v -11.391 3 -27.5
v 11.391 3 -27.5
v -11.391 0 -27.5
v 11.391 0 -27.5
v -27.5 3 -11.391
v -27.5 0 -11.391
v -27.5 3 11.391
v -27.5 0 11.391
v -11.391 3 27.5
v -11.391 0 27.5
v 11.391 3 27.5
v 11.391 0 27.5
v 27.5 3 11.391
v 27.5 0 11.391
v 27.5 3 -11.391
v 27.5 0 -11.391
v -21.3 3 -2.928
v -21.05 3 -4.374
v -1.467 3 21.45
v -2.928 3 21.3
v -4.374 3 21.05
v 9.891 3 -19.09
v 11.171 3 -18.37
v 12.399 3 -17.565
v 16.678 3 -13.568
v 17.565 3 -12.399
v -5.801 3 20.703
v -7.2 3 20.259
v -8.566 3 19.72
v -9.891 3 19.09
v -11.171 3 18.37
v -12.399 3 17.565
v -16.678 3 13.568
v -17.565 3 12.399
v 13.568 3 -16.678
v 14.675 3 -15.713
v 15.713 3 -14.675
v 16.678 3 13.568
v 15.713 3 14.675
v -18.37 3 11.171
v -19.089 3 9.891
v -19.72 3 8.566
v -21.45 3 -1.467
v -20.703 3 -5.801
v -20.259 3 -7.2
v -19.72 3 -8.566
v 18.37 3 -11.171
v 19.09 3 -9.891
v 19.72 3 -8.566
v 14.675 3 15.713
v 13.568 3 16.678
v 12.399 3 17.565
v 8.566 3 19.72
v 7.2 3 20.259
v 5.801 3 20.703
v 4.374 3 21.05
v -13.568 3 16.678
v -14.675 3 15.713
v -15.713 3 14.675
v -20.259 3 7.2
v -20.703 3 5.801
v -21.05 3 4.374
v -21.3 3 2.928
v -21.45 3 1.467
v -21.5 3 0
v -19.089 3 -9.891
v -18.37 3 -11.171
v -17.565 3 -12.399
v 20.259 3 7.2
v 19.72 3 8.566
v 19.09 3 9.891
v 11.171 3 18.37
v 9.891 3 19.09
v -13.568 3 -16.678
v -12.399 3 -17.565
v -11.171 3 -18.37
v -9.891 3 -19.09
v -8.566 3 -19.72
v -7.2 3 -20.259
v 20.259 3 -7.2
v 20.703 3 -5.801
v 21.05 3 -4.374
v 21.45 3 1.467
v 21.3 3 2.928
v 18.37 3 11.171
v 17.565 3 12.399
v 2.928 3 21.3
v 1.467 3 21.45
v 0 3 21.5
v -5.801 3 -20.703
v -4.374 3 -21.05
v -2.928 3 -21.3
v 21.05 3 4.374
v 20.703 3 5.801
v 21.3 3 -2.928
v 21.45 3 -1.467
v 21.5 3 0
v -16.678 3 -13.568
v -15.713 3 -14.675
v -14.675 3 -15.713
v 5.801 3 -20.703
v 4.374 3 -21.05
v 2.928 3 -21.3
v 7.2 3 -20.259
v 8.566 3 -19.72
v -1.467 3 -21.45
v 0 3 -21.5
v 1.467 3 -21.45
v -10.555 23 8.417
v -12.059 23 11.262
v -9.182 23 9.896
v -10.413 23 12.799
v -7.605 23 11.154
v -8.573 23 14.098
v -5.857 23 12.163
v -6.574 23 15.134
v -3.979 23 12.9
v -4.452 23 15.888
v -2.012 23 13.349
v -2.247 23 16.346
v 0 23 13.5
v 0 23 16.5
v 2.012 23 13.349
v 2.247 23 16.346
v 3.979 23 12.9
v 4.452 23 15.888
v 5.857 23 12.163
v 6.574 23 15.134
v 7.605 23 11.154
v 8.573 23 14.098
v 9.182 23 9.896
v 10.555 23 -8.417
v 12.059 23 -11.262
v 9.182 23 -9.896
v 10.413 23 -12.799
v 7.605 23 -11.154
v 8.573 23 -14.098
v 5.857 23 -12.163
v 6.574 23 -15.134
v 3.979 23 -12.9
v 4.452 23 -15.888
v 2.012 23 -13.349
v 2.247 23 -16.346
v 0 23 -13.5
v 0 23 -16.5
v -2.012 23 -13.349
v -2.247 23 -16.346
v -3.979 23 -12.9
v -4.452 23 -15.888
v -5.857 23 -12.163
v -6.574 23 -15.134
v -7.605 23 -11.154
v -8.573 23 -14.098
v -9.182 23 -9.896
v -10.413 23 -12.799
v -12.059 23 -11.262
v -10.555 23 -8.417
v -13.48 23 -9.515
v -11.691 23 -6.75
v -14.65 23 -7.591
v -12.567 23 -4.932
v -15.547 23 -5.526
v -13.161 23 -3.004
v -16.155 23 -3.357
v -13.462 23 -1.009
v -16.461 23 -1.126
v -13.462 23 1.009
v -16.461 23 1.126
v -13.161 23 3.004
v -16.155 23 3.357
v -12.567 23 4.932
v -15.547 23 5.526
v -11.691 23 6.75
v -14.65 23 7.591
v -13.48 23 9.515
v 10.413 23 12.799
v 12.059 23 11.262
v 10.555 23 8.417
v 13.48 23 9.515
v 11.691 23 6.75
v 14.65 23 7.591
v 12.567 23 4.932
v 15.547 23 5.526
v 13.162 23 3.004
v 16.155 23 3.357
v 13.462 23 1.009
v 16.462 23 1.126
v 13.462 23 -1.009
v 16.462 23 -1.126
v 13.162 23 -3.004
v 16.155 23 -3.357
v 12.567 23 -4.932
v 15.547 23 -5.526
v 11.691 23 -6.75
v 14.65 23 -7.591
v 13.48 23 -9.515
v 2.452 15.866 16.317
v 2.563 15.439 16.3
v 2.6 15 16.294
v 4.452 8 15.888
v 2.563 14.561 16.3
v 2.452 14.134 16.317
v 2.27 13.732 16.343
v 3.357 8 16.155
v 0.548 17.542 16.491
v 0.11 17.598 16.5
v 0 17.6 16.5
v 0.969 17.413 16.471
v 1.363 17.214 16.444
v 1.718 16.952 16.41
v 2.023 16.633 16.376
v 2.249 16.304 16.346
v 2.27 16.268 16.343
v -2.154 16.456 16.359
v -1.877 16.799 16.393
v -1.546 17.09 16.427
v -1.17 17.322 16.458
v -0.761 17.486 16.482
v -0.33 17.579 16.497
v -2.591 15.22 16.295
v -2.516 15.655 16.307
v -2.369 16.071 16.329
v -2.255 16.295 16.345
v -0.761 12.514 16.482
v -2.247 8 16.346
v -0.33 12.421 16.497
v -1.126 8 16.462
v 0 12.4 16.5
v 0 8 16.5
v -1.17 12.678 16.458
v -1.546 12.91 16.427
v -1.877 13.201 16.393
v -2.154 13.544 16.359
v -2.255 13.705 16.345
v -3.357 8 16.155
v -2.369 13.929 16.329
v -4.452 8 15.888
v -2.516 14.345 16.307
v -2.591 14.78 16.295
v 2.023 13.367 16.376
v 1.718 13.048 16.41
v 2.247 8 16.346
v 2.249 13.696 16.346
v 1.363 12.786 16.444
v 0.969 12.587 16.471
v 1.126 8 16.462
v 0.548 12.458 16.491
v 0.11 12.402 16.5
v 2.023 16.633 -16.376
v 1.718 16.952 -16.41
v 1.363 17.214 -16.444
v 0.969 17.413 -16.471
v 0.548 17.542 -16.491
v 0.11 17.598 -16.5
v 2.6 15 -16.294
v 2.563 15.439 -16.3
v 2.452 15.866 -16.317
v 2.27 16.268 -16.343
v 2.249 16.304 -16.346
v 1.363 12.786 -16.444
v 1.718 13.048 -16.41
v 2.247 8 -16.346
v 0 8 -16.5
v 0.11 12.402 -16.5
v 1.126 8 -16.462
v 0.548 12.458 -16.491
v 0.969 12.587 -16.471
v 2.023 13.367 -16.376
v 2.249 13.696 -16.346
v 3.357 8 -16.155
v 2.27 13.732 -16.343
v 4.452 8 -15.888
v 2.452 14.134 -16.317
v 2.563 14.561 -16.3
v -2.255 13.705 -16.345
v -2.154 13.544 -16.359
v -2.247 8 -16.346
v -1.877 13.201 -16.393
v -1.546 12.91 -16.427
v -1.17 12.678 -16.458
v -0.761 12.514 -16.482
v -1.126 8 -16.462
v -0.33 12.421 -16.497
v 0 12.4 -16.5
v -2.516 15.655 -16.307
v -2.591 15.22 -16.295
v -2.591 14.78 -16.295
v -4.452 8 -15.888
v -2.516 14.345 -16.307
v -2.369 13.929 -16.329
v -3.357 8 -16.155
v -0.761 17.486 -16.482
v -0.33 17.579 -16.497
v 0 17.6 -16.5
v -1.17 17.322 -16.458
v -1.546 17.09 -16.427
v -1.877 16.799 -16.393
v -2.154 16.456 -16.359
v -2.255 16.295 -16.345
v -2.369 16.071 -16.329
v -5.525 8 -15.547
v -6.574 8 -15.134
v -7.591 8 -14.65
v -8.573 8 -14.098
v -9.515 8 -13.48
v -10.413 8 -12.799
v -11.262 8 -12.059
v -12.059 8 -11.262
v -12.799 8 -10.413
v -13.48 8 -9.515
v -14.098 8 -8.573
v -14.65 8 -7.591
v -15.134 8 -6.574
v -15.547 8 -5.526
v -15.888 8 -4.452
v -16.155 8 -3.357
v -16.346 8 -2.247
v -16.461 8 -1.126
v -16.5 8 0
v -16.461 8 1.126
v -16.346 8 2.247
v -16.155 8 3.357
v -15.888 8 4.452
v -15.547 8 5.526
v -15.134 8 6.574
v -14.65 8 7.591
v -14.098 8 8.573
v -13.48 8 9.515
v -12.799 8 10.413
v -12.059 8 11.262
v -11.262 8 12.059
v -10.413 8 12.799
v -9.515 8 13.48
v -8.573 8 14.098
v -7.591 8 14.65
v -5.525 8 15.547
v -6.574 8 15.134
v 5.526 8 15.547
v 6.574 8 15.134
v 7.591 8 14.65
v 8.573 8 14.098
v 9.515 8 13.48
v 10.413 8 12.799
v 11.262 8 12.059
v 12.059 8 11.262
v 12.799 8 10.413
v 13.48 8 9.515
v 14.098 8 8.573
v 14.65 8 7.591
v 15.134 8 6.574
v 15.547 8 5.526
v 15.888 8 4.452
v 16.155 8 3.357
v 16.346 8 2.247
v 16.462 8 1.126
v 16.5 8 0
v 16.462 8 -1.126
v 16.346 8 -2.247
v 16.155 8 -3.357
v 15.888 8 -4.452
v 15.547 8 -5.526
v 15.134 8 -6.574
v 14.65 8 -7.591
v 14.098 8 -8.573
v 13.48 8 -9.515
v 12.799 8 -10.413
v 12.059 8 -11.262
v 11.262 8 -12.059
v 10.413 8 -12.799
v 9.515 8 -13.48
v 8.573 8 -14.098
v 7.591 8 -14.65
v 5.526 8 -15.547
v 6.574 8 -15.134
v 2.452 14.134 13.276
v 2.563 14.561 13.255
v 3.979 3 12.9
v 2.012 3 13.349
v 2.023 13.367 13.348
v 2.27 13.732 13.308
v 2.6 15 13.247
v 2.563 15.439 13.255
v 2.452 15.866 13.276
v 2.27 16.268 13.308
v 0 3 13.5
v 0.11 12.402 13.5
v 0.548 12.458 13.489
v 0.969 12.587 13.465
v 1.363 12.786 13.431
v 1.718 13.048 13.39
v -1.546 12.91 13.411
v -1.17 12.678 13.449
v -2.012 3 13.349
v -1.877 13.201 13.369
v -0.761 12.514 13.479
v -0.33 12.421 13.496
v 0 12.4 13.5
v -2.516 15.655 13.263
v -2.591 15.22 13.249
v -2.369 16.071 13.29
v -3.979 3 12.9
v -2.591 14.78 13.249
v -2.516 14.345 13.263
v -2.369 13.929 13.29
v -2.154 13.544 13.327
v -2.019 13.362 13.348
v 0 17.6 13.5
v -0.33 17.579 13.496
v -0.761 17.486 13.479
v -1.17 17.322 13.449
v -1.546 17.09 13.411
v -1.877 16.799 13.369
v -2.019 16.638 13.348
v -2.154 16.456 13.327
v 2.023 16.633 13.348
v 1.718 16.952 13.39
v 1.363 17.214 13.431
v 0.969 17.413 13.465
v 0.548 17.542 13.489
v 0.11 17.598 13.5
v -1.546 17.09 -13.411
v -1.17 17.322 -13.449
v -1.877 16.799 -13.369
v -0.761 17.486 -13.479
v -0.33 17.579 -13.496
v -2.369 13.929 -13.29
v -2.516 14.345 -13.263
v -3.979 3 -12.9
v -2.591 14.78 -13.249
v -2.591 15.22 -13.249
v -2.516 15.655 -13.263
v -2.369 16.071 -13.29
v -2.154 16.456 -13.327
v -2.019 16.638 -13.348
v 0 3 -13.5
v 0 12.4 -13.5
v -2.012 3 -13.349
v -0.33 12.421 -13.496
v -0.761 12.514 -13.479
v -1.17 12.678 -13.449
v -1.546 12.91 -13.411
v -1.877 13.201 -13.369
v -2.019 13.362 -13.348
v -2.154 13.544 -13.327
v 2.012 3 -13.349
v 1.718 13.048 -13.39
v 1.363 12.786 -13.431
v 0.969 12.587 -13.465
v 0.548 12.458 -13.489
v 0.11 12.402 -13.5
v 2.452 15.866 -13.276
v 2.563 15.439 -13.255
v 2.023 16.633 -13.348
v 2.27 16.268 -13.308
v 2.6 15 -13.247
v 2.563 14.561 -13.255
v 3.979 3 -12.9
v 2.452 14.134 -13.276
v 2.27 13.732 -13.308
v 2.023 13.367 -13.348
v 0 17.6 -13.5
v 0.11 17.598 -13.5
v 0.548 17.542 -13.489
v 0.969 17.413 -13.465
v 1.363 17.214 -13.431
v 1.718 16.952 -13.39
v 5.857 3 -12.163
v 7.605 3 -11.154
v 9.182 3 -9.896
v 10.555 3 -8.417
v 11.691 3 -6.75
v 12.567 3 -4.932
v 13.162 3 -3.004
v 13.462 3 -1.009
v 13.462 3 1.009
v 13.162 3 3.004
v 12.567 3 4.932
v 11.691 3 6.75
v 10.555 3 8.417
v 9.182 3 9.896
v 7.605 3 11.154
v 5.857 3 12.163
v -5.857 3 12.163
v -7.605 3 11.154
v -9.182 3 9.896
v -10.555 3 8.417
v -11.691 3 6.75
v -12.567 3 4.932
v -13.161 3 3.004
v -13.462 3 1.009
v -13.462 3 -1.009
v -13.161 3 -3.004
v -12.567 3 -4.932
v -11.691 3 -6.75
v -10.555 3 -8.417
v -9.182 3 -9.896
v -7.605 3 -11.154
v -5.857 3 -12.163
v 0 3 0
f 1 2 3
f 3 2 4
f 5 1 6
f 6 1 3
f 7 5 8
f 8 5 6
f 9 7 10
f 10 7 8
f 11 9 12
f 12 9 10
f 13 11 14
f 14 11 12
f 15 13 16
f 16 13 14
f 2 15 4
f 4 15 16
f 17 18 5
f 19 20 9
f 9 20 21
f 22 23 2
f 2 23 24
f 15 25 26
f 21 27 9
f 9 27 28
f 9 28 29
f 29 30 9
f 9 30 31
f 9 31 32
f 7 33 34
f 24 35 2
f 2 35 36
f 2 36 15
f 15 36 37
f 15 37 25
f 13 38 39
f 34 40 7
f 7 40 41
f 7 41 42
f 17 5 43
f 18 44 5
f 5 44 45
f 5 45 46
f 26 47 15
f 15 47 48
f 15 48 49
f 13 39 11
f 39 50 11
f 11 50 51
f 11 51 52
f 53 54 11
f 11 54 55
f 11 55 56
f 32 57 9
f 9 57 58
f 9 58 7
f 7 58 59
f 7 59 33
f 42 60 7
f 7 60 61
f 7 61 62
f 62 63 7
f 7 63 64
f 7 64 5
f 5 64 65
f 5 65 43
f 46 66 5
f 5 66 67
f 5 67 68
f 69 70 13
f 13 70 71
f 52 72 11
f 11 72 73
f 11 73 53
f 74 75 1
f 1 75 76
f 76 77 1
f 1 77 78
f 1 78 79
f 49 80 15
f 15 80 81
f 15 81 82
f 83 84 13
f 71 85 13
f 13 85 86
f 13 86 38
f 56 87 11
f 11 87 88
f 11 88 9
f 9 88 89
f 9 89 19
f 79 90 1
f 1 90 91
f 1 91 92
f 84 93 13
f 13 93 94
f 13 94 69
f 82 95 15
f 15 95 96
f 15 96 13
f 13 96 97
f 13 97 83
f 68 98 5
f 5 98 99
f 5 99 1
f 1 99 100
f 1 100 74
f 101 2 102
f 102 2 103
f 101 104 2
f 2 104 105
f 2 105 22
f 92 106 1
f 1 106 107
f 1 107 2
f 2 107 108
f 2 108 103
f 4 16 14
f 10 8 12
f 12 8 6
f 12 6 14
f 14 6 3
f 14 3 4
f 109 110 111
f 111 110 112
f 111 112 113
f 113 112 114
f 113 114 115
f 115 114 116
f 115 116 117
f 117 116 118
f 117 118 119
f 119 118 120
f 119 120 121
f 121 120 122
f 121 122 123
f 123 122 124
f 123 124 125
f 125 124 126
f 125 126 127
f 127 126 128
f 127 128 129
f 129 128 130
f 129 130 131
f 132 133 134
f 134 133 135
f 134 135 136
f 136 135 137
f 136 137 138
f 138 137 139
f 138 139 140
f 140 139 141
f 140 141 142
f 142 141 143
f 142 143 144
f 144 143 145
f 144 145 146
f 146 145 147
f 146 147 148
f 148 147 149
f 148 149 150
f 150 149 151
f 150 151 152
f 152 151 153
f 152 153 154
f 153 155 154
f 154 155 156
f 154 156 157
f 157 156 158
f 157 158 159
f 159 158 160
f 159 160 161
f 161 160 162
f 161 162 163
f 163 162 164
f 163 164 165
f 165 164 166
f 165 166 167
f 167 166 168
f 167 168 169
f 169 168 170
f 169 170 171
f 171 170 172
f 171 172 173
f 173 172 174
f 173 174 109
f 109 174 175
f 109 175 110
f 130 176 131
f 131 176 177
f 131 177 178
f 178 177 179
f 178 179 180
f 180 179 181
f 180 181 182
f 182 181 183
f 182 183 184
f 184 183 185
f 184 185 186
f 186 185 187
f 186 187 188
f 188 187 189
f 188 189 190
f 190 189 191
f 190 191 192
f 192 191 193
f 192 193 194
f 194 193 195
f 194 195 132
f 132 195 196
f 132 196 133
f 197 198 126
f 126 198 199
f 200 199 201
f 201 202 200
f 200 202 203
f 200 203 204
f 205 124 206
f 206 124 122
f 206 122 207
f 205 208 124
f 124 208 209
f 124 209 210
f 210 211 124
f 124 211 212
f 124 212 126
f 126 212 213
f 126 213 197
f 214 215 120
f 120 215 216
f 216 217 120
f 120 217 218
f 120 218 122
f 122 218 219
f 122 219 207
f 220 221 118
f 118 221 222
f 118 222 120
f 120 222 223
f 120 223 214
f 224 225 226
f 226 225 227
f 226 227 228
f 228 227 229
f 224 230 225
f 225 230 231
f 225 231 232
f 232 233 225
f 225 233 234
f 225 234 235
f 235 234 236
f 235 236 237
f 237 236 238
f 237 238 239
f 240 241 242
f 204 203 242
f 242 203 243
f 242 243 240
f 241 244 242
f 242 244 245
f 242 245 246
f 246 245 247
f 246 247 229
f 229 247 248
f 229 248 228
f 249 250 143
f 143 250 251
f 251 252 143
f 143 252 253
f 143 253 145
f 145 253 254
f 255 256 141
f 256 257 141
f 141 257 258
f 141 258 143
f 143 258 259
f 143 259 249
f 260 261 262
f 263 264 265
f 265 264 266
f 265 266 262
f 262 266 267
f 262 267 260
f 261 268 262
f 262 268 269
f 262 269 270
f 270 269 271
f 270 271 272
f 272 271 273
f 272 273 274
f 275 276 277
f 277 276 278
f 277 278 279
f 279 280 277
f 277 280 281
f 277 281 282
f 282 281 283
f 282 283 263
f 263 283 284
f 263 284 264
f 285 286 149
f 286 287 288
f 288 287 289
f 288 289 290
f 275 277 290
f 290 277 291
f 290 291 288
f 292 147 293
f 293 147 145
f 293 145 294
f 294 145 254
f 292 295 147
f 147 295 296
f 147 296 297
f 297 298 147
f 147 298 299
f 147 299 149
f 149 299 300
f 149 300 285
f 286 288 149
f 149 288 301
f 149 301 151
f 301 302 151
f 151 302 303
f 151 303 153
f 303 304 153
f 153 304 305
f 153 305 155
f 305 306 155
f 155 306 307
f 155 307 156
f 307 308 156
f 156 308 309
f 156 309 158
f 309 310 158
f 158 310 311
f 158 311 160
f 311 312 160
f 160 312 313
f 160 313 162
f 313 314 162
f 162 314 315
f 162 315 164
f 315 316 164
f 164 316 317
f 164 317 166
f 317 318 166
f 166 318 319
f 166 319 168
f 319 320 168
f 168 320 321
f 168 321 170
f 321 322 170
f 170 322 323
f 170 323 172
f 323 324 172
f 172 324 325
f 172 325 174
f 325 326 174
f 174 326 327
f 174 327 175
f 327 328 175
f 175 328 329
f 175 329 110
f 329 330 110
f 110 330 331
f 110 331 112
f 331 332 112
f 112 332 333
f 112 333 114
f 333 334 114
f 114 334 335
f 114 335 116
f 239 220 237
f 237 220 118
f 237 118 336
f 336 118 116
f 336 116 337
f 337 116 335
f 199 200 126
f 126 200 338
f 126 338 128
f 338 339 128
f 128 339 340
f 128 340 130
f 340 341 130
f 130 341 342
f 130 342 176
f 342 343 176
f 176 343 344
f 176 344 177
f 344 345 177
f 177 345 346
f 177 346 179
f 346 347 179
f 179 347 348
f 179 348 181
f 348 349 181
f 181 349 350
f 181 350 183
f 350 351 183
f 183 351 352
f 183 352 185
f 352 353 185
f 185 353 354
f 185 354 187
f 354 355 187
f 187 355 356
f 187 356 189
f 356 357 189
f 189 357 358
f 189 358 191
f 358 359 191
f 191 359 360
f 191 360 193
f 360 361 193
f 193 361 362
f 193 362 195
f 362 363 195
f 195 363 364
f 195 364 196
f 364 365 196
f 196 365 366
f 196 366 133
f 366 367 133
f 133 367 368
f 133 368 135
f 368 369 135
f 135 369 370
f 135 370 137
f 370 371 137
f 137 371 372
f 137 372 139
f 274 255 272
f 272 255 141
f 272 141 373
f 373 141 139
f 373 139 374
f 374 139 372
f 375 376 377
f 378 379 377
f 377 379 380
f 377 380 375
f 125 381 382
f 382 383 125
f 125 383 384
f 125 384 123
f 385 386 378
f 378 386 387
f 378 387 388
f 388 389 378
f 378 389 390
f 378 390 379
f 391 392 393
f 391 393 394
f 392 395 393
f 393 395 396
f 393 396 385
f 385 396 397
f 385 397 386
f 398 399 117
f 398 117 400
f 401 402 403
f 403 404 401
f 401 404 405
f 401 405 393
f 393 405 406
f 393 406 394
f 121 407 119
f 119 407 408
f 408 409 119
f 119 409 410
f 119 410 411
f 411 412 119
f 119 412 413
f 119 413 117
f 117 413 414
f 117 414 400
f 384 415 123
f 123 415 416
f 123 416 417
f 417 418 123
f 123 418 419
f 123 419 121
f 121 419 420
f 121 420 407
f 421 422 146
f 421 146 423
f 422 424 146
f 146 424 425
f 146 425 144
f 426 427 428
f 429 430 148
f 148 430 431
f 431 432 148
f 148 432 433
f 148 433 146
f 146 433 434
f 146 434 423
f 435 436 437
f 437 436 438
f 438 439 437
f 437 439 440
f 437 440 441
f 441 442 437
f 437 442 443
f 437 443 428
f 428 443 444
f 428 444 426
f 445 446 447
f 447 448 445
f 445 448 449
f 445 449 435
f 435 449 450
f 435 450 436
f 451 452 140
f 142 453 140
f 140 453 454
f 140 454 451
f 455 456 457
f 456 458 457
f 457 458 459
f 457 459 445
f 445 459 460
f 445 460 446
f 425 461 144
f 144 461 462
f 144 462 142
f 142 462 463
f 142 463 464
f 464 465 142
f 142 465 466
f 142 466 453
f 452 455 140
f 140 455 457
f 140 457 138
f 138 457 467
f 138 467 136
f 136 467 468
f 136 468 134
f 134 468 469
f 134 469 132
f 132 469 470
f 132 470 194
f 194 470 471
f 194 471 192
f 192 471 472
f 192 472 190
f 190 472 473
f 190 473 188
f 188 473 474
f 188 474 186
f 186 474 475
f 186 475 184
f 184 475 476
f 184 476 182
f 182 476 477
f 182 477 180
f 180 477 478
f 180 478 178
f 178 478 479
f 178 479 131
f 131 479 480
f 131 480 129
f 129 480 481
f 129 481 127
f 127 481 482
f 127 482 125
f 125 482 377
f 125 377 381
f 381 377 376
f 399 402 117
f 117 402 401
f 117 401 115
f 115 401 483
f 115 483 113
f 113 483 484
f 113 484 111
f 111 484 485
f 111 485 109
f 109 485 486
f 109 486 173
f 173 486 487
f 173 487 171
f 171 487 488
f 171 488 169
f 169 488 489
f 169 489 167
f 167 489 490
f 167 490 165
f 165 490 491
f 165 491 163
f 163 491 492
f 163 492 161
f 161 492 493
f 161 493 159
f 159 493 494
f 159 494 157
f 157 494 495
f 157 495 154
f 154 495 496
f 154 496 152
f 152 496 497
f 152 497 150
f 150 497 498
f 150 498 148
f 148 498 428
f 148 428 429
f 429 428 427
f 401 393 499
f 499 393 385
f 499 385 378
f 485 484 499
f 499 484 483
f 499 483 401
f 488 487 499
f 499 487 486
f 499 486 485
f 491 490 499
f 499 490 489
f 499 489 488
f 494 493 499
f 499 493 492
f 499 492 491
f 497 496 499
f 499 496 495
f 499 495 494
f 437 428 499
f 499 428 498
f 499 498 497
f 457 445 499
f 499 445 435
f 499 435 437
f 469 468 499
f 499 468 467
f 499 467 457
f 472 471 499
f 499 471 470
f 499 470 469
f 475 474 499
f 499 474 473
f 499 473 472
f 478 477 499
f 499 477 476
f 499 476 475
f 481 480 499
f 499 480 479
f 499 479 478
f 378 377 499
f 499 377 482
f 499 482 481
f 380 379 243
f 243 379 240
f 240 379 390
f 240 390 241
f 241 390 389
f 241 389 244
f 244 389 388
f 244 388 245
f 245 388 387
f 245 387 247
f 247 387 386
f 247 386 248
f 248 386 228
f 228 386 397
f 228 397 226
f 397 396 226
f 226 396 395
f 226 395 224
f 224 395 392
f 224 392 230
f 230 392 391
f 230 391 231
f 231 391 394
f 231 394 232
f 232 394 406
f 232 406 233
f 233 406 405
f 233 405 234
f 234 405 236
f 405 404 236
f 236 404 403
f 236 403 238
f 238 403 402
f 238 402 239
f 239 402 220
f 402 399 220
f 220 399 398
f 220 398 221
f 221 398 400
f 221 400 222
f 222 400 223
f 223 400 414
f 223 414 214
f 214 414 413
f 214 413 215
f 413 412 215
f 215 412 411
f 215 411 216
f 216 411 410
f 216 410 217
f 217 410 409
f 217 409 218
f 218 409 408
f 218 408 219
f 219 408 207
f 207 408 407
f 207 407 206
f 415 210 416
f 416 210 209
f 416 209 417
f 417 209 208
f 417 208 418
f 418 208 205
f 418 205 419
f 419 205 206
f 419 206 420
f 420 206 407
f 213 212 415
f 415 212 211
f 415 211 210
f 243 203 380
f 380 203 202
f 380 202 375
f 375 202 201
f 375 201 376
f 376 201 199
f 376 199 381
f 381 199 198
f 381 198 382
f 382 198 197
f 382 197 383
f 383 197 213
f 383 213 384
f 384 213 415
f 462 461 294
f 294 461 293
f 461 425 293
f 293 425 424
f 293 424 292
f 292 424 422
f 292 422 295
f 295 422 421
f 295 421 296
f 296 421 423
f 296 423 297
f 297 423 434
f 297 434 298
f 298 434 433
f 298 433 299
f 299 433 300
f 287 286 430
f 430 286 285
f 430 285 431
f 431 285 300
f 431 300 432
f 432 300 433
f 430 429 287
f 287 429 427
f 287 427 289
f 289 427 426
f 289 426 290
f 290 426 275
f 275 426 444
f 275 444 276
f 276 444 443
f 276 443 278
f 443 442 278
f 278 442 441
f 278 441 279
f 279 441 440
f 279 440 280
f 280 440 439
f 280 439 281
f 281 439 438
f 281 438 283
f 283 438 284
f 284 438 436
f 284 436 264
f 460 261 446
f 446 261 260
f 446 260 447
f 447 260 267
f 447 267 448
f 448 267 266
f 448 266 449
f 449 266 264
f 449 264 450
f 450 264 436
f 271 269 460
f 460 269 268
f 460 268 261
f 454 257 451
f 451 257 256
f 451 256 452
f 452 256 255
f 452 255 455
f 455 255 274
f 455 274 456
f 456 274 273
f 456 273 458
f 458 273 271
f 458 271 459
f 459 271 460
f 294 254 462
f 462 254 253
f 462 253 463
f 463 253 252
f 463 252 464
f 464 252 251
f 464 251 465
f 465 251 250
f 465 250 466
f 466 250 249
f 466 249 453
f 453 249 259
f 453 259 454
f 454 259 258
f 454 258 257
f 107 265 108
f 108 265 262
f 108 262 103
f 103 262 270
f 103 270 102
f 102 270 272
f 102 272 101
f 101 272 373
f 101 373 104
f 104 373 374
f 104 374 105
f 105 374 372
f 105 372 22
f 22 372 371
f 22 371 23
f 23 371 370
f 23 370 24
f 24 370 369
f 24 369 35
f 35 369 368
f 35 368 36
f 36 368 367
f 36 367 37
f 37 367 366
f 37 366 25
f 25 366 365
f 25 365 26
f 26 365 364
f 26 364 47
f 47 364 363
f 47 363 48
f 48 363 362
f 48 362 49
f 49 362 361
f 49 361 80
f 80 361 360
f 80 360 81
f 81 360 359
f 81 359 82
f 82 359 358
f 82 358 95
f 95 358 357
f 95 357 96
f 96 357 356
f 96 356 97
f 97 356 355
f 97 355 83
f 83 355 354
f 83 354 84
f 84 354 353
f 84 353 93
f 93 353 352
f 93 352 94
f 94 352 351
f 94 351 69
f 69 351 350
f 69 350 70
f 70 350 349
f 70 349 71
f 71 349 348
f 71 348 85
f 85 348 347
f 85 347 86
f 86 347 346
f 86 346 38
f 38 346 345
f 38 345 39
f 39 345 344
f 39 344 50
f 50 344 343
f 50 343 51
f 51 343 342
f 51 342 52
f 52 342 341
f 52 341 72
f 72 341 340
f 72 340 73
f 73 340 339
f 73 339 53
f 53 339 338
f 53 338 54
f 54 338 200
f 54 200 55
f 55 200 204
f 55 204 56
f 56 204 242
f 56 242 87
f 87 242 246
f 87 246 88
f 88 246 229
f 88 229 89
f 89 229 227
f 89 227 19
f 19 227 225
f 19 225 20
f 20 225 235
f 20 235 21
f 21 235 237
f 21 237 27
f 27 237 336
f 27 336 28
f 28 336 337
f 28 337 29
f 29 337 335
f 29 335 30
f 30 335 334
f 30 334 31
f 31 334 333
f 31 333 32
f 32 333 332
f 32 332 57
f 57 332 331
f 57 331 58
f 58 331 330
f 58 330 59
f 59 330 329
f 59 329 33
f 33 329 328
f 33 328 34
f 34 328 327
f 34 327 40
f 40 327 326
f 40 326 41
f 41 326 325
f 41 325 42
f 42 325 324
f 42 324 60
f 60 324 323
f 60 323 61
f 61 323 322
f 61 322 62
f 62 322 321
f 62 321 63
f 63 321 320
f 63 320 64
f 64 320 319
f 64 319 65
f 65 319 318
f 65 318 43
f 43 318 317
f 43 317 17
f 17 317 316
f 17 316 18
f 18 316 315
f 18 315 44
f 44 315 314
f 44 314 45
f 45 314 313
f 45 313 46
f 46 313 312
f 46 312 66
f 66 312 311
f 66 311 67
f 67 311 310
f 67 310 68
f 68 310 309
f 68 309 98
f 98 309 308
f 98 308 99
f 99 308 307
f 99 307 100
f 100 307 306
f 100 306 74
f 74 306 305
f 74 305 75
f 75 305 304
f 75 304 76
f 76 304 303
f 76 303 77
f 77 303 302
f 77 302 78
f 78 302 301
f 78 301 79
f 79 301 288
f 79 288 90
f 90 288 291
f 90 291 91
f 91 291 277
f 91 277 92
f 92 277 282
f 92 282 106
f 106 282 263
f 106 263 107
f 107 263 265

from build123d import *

# Parameters (mm, degrees)
BOSS_EXTRUDE1_DEPTH     = 3
SKETCH4_R               = 16.5
SKETCH4_R_2             = 13.5
BOSS_EXTRUDE2_DEPTH     = 20
CUT_EXTRUDE1_DEPTH      = 46.18296139
CUT_EXTRUDE1_DEPTH_BACK = 46.18296139
SKETCH5_R               = 2.6
CHAMFER1_SIZE           = 5


with BuildPart() as part:
    # Sketch2 → Boss-Extrude1 (new body)
    with BuildSketch(Plane(origin=(0, 0, 0), x_dir=(1, 0, 0), z_dir=(0, 1, 0))):
        Polygon((-11.390872965, 27.5), (-27.5, 11.390872965), (-27.5, -11.390872965), (-11.390872965, -27.5), (11.390872965, -27.5), (27.5, -11.390872965), (27.5, 11.390872965), (11.390872965, 27.5), align=None)
    extrude(amount=BOSS_EXTRUDE1_DEPTH)

    # Sketch4 → Boss-Extrude2 (add)
    with BuildSketch(Plane(origin=(0, 3, 0), x_dir=(1, 0, 0), z_dir=(0, 1, 0))):
        with Locations(Location((0, 0, 0), (0, 0, 270))):
            Circle(SKETCH4_R)
        with Locations(Location((0, 0, 0), (0, 0, 270))):
            Circle(SKETCH4_R_2, mode=Mode.SUBTRACT)
    extrude(amount=BOSS_EXTRUDE2_DEPTH)

    # Sketch5 → Cut-Extrude1 (cut, two sides: drawn at the far end of the back side and taken through both)
    with BuildSketch(Plane.XY.offset(-CUT_EXTRUDE1_DEPTH_BACK)):
        with Locations((0, 15)):
            Circle(SKETCH5_R)
    extrude(amount=CUT_EXTRUDE1_DEPTH + CUT_EXTRUDE1_DEPTH_BACK, mode=Mode.SUBTRACT)

    # Chamfer1
    chamfer1_edges = [part.edges().sort_by_distance(p)[0] for p in [
        (0, 3, -16.5),
    ]]
    chamfer(chamfer1_edges, length=CHAMFER1_SIZE)


solid = part.part
